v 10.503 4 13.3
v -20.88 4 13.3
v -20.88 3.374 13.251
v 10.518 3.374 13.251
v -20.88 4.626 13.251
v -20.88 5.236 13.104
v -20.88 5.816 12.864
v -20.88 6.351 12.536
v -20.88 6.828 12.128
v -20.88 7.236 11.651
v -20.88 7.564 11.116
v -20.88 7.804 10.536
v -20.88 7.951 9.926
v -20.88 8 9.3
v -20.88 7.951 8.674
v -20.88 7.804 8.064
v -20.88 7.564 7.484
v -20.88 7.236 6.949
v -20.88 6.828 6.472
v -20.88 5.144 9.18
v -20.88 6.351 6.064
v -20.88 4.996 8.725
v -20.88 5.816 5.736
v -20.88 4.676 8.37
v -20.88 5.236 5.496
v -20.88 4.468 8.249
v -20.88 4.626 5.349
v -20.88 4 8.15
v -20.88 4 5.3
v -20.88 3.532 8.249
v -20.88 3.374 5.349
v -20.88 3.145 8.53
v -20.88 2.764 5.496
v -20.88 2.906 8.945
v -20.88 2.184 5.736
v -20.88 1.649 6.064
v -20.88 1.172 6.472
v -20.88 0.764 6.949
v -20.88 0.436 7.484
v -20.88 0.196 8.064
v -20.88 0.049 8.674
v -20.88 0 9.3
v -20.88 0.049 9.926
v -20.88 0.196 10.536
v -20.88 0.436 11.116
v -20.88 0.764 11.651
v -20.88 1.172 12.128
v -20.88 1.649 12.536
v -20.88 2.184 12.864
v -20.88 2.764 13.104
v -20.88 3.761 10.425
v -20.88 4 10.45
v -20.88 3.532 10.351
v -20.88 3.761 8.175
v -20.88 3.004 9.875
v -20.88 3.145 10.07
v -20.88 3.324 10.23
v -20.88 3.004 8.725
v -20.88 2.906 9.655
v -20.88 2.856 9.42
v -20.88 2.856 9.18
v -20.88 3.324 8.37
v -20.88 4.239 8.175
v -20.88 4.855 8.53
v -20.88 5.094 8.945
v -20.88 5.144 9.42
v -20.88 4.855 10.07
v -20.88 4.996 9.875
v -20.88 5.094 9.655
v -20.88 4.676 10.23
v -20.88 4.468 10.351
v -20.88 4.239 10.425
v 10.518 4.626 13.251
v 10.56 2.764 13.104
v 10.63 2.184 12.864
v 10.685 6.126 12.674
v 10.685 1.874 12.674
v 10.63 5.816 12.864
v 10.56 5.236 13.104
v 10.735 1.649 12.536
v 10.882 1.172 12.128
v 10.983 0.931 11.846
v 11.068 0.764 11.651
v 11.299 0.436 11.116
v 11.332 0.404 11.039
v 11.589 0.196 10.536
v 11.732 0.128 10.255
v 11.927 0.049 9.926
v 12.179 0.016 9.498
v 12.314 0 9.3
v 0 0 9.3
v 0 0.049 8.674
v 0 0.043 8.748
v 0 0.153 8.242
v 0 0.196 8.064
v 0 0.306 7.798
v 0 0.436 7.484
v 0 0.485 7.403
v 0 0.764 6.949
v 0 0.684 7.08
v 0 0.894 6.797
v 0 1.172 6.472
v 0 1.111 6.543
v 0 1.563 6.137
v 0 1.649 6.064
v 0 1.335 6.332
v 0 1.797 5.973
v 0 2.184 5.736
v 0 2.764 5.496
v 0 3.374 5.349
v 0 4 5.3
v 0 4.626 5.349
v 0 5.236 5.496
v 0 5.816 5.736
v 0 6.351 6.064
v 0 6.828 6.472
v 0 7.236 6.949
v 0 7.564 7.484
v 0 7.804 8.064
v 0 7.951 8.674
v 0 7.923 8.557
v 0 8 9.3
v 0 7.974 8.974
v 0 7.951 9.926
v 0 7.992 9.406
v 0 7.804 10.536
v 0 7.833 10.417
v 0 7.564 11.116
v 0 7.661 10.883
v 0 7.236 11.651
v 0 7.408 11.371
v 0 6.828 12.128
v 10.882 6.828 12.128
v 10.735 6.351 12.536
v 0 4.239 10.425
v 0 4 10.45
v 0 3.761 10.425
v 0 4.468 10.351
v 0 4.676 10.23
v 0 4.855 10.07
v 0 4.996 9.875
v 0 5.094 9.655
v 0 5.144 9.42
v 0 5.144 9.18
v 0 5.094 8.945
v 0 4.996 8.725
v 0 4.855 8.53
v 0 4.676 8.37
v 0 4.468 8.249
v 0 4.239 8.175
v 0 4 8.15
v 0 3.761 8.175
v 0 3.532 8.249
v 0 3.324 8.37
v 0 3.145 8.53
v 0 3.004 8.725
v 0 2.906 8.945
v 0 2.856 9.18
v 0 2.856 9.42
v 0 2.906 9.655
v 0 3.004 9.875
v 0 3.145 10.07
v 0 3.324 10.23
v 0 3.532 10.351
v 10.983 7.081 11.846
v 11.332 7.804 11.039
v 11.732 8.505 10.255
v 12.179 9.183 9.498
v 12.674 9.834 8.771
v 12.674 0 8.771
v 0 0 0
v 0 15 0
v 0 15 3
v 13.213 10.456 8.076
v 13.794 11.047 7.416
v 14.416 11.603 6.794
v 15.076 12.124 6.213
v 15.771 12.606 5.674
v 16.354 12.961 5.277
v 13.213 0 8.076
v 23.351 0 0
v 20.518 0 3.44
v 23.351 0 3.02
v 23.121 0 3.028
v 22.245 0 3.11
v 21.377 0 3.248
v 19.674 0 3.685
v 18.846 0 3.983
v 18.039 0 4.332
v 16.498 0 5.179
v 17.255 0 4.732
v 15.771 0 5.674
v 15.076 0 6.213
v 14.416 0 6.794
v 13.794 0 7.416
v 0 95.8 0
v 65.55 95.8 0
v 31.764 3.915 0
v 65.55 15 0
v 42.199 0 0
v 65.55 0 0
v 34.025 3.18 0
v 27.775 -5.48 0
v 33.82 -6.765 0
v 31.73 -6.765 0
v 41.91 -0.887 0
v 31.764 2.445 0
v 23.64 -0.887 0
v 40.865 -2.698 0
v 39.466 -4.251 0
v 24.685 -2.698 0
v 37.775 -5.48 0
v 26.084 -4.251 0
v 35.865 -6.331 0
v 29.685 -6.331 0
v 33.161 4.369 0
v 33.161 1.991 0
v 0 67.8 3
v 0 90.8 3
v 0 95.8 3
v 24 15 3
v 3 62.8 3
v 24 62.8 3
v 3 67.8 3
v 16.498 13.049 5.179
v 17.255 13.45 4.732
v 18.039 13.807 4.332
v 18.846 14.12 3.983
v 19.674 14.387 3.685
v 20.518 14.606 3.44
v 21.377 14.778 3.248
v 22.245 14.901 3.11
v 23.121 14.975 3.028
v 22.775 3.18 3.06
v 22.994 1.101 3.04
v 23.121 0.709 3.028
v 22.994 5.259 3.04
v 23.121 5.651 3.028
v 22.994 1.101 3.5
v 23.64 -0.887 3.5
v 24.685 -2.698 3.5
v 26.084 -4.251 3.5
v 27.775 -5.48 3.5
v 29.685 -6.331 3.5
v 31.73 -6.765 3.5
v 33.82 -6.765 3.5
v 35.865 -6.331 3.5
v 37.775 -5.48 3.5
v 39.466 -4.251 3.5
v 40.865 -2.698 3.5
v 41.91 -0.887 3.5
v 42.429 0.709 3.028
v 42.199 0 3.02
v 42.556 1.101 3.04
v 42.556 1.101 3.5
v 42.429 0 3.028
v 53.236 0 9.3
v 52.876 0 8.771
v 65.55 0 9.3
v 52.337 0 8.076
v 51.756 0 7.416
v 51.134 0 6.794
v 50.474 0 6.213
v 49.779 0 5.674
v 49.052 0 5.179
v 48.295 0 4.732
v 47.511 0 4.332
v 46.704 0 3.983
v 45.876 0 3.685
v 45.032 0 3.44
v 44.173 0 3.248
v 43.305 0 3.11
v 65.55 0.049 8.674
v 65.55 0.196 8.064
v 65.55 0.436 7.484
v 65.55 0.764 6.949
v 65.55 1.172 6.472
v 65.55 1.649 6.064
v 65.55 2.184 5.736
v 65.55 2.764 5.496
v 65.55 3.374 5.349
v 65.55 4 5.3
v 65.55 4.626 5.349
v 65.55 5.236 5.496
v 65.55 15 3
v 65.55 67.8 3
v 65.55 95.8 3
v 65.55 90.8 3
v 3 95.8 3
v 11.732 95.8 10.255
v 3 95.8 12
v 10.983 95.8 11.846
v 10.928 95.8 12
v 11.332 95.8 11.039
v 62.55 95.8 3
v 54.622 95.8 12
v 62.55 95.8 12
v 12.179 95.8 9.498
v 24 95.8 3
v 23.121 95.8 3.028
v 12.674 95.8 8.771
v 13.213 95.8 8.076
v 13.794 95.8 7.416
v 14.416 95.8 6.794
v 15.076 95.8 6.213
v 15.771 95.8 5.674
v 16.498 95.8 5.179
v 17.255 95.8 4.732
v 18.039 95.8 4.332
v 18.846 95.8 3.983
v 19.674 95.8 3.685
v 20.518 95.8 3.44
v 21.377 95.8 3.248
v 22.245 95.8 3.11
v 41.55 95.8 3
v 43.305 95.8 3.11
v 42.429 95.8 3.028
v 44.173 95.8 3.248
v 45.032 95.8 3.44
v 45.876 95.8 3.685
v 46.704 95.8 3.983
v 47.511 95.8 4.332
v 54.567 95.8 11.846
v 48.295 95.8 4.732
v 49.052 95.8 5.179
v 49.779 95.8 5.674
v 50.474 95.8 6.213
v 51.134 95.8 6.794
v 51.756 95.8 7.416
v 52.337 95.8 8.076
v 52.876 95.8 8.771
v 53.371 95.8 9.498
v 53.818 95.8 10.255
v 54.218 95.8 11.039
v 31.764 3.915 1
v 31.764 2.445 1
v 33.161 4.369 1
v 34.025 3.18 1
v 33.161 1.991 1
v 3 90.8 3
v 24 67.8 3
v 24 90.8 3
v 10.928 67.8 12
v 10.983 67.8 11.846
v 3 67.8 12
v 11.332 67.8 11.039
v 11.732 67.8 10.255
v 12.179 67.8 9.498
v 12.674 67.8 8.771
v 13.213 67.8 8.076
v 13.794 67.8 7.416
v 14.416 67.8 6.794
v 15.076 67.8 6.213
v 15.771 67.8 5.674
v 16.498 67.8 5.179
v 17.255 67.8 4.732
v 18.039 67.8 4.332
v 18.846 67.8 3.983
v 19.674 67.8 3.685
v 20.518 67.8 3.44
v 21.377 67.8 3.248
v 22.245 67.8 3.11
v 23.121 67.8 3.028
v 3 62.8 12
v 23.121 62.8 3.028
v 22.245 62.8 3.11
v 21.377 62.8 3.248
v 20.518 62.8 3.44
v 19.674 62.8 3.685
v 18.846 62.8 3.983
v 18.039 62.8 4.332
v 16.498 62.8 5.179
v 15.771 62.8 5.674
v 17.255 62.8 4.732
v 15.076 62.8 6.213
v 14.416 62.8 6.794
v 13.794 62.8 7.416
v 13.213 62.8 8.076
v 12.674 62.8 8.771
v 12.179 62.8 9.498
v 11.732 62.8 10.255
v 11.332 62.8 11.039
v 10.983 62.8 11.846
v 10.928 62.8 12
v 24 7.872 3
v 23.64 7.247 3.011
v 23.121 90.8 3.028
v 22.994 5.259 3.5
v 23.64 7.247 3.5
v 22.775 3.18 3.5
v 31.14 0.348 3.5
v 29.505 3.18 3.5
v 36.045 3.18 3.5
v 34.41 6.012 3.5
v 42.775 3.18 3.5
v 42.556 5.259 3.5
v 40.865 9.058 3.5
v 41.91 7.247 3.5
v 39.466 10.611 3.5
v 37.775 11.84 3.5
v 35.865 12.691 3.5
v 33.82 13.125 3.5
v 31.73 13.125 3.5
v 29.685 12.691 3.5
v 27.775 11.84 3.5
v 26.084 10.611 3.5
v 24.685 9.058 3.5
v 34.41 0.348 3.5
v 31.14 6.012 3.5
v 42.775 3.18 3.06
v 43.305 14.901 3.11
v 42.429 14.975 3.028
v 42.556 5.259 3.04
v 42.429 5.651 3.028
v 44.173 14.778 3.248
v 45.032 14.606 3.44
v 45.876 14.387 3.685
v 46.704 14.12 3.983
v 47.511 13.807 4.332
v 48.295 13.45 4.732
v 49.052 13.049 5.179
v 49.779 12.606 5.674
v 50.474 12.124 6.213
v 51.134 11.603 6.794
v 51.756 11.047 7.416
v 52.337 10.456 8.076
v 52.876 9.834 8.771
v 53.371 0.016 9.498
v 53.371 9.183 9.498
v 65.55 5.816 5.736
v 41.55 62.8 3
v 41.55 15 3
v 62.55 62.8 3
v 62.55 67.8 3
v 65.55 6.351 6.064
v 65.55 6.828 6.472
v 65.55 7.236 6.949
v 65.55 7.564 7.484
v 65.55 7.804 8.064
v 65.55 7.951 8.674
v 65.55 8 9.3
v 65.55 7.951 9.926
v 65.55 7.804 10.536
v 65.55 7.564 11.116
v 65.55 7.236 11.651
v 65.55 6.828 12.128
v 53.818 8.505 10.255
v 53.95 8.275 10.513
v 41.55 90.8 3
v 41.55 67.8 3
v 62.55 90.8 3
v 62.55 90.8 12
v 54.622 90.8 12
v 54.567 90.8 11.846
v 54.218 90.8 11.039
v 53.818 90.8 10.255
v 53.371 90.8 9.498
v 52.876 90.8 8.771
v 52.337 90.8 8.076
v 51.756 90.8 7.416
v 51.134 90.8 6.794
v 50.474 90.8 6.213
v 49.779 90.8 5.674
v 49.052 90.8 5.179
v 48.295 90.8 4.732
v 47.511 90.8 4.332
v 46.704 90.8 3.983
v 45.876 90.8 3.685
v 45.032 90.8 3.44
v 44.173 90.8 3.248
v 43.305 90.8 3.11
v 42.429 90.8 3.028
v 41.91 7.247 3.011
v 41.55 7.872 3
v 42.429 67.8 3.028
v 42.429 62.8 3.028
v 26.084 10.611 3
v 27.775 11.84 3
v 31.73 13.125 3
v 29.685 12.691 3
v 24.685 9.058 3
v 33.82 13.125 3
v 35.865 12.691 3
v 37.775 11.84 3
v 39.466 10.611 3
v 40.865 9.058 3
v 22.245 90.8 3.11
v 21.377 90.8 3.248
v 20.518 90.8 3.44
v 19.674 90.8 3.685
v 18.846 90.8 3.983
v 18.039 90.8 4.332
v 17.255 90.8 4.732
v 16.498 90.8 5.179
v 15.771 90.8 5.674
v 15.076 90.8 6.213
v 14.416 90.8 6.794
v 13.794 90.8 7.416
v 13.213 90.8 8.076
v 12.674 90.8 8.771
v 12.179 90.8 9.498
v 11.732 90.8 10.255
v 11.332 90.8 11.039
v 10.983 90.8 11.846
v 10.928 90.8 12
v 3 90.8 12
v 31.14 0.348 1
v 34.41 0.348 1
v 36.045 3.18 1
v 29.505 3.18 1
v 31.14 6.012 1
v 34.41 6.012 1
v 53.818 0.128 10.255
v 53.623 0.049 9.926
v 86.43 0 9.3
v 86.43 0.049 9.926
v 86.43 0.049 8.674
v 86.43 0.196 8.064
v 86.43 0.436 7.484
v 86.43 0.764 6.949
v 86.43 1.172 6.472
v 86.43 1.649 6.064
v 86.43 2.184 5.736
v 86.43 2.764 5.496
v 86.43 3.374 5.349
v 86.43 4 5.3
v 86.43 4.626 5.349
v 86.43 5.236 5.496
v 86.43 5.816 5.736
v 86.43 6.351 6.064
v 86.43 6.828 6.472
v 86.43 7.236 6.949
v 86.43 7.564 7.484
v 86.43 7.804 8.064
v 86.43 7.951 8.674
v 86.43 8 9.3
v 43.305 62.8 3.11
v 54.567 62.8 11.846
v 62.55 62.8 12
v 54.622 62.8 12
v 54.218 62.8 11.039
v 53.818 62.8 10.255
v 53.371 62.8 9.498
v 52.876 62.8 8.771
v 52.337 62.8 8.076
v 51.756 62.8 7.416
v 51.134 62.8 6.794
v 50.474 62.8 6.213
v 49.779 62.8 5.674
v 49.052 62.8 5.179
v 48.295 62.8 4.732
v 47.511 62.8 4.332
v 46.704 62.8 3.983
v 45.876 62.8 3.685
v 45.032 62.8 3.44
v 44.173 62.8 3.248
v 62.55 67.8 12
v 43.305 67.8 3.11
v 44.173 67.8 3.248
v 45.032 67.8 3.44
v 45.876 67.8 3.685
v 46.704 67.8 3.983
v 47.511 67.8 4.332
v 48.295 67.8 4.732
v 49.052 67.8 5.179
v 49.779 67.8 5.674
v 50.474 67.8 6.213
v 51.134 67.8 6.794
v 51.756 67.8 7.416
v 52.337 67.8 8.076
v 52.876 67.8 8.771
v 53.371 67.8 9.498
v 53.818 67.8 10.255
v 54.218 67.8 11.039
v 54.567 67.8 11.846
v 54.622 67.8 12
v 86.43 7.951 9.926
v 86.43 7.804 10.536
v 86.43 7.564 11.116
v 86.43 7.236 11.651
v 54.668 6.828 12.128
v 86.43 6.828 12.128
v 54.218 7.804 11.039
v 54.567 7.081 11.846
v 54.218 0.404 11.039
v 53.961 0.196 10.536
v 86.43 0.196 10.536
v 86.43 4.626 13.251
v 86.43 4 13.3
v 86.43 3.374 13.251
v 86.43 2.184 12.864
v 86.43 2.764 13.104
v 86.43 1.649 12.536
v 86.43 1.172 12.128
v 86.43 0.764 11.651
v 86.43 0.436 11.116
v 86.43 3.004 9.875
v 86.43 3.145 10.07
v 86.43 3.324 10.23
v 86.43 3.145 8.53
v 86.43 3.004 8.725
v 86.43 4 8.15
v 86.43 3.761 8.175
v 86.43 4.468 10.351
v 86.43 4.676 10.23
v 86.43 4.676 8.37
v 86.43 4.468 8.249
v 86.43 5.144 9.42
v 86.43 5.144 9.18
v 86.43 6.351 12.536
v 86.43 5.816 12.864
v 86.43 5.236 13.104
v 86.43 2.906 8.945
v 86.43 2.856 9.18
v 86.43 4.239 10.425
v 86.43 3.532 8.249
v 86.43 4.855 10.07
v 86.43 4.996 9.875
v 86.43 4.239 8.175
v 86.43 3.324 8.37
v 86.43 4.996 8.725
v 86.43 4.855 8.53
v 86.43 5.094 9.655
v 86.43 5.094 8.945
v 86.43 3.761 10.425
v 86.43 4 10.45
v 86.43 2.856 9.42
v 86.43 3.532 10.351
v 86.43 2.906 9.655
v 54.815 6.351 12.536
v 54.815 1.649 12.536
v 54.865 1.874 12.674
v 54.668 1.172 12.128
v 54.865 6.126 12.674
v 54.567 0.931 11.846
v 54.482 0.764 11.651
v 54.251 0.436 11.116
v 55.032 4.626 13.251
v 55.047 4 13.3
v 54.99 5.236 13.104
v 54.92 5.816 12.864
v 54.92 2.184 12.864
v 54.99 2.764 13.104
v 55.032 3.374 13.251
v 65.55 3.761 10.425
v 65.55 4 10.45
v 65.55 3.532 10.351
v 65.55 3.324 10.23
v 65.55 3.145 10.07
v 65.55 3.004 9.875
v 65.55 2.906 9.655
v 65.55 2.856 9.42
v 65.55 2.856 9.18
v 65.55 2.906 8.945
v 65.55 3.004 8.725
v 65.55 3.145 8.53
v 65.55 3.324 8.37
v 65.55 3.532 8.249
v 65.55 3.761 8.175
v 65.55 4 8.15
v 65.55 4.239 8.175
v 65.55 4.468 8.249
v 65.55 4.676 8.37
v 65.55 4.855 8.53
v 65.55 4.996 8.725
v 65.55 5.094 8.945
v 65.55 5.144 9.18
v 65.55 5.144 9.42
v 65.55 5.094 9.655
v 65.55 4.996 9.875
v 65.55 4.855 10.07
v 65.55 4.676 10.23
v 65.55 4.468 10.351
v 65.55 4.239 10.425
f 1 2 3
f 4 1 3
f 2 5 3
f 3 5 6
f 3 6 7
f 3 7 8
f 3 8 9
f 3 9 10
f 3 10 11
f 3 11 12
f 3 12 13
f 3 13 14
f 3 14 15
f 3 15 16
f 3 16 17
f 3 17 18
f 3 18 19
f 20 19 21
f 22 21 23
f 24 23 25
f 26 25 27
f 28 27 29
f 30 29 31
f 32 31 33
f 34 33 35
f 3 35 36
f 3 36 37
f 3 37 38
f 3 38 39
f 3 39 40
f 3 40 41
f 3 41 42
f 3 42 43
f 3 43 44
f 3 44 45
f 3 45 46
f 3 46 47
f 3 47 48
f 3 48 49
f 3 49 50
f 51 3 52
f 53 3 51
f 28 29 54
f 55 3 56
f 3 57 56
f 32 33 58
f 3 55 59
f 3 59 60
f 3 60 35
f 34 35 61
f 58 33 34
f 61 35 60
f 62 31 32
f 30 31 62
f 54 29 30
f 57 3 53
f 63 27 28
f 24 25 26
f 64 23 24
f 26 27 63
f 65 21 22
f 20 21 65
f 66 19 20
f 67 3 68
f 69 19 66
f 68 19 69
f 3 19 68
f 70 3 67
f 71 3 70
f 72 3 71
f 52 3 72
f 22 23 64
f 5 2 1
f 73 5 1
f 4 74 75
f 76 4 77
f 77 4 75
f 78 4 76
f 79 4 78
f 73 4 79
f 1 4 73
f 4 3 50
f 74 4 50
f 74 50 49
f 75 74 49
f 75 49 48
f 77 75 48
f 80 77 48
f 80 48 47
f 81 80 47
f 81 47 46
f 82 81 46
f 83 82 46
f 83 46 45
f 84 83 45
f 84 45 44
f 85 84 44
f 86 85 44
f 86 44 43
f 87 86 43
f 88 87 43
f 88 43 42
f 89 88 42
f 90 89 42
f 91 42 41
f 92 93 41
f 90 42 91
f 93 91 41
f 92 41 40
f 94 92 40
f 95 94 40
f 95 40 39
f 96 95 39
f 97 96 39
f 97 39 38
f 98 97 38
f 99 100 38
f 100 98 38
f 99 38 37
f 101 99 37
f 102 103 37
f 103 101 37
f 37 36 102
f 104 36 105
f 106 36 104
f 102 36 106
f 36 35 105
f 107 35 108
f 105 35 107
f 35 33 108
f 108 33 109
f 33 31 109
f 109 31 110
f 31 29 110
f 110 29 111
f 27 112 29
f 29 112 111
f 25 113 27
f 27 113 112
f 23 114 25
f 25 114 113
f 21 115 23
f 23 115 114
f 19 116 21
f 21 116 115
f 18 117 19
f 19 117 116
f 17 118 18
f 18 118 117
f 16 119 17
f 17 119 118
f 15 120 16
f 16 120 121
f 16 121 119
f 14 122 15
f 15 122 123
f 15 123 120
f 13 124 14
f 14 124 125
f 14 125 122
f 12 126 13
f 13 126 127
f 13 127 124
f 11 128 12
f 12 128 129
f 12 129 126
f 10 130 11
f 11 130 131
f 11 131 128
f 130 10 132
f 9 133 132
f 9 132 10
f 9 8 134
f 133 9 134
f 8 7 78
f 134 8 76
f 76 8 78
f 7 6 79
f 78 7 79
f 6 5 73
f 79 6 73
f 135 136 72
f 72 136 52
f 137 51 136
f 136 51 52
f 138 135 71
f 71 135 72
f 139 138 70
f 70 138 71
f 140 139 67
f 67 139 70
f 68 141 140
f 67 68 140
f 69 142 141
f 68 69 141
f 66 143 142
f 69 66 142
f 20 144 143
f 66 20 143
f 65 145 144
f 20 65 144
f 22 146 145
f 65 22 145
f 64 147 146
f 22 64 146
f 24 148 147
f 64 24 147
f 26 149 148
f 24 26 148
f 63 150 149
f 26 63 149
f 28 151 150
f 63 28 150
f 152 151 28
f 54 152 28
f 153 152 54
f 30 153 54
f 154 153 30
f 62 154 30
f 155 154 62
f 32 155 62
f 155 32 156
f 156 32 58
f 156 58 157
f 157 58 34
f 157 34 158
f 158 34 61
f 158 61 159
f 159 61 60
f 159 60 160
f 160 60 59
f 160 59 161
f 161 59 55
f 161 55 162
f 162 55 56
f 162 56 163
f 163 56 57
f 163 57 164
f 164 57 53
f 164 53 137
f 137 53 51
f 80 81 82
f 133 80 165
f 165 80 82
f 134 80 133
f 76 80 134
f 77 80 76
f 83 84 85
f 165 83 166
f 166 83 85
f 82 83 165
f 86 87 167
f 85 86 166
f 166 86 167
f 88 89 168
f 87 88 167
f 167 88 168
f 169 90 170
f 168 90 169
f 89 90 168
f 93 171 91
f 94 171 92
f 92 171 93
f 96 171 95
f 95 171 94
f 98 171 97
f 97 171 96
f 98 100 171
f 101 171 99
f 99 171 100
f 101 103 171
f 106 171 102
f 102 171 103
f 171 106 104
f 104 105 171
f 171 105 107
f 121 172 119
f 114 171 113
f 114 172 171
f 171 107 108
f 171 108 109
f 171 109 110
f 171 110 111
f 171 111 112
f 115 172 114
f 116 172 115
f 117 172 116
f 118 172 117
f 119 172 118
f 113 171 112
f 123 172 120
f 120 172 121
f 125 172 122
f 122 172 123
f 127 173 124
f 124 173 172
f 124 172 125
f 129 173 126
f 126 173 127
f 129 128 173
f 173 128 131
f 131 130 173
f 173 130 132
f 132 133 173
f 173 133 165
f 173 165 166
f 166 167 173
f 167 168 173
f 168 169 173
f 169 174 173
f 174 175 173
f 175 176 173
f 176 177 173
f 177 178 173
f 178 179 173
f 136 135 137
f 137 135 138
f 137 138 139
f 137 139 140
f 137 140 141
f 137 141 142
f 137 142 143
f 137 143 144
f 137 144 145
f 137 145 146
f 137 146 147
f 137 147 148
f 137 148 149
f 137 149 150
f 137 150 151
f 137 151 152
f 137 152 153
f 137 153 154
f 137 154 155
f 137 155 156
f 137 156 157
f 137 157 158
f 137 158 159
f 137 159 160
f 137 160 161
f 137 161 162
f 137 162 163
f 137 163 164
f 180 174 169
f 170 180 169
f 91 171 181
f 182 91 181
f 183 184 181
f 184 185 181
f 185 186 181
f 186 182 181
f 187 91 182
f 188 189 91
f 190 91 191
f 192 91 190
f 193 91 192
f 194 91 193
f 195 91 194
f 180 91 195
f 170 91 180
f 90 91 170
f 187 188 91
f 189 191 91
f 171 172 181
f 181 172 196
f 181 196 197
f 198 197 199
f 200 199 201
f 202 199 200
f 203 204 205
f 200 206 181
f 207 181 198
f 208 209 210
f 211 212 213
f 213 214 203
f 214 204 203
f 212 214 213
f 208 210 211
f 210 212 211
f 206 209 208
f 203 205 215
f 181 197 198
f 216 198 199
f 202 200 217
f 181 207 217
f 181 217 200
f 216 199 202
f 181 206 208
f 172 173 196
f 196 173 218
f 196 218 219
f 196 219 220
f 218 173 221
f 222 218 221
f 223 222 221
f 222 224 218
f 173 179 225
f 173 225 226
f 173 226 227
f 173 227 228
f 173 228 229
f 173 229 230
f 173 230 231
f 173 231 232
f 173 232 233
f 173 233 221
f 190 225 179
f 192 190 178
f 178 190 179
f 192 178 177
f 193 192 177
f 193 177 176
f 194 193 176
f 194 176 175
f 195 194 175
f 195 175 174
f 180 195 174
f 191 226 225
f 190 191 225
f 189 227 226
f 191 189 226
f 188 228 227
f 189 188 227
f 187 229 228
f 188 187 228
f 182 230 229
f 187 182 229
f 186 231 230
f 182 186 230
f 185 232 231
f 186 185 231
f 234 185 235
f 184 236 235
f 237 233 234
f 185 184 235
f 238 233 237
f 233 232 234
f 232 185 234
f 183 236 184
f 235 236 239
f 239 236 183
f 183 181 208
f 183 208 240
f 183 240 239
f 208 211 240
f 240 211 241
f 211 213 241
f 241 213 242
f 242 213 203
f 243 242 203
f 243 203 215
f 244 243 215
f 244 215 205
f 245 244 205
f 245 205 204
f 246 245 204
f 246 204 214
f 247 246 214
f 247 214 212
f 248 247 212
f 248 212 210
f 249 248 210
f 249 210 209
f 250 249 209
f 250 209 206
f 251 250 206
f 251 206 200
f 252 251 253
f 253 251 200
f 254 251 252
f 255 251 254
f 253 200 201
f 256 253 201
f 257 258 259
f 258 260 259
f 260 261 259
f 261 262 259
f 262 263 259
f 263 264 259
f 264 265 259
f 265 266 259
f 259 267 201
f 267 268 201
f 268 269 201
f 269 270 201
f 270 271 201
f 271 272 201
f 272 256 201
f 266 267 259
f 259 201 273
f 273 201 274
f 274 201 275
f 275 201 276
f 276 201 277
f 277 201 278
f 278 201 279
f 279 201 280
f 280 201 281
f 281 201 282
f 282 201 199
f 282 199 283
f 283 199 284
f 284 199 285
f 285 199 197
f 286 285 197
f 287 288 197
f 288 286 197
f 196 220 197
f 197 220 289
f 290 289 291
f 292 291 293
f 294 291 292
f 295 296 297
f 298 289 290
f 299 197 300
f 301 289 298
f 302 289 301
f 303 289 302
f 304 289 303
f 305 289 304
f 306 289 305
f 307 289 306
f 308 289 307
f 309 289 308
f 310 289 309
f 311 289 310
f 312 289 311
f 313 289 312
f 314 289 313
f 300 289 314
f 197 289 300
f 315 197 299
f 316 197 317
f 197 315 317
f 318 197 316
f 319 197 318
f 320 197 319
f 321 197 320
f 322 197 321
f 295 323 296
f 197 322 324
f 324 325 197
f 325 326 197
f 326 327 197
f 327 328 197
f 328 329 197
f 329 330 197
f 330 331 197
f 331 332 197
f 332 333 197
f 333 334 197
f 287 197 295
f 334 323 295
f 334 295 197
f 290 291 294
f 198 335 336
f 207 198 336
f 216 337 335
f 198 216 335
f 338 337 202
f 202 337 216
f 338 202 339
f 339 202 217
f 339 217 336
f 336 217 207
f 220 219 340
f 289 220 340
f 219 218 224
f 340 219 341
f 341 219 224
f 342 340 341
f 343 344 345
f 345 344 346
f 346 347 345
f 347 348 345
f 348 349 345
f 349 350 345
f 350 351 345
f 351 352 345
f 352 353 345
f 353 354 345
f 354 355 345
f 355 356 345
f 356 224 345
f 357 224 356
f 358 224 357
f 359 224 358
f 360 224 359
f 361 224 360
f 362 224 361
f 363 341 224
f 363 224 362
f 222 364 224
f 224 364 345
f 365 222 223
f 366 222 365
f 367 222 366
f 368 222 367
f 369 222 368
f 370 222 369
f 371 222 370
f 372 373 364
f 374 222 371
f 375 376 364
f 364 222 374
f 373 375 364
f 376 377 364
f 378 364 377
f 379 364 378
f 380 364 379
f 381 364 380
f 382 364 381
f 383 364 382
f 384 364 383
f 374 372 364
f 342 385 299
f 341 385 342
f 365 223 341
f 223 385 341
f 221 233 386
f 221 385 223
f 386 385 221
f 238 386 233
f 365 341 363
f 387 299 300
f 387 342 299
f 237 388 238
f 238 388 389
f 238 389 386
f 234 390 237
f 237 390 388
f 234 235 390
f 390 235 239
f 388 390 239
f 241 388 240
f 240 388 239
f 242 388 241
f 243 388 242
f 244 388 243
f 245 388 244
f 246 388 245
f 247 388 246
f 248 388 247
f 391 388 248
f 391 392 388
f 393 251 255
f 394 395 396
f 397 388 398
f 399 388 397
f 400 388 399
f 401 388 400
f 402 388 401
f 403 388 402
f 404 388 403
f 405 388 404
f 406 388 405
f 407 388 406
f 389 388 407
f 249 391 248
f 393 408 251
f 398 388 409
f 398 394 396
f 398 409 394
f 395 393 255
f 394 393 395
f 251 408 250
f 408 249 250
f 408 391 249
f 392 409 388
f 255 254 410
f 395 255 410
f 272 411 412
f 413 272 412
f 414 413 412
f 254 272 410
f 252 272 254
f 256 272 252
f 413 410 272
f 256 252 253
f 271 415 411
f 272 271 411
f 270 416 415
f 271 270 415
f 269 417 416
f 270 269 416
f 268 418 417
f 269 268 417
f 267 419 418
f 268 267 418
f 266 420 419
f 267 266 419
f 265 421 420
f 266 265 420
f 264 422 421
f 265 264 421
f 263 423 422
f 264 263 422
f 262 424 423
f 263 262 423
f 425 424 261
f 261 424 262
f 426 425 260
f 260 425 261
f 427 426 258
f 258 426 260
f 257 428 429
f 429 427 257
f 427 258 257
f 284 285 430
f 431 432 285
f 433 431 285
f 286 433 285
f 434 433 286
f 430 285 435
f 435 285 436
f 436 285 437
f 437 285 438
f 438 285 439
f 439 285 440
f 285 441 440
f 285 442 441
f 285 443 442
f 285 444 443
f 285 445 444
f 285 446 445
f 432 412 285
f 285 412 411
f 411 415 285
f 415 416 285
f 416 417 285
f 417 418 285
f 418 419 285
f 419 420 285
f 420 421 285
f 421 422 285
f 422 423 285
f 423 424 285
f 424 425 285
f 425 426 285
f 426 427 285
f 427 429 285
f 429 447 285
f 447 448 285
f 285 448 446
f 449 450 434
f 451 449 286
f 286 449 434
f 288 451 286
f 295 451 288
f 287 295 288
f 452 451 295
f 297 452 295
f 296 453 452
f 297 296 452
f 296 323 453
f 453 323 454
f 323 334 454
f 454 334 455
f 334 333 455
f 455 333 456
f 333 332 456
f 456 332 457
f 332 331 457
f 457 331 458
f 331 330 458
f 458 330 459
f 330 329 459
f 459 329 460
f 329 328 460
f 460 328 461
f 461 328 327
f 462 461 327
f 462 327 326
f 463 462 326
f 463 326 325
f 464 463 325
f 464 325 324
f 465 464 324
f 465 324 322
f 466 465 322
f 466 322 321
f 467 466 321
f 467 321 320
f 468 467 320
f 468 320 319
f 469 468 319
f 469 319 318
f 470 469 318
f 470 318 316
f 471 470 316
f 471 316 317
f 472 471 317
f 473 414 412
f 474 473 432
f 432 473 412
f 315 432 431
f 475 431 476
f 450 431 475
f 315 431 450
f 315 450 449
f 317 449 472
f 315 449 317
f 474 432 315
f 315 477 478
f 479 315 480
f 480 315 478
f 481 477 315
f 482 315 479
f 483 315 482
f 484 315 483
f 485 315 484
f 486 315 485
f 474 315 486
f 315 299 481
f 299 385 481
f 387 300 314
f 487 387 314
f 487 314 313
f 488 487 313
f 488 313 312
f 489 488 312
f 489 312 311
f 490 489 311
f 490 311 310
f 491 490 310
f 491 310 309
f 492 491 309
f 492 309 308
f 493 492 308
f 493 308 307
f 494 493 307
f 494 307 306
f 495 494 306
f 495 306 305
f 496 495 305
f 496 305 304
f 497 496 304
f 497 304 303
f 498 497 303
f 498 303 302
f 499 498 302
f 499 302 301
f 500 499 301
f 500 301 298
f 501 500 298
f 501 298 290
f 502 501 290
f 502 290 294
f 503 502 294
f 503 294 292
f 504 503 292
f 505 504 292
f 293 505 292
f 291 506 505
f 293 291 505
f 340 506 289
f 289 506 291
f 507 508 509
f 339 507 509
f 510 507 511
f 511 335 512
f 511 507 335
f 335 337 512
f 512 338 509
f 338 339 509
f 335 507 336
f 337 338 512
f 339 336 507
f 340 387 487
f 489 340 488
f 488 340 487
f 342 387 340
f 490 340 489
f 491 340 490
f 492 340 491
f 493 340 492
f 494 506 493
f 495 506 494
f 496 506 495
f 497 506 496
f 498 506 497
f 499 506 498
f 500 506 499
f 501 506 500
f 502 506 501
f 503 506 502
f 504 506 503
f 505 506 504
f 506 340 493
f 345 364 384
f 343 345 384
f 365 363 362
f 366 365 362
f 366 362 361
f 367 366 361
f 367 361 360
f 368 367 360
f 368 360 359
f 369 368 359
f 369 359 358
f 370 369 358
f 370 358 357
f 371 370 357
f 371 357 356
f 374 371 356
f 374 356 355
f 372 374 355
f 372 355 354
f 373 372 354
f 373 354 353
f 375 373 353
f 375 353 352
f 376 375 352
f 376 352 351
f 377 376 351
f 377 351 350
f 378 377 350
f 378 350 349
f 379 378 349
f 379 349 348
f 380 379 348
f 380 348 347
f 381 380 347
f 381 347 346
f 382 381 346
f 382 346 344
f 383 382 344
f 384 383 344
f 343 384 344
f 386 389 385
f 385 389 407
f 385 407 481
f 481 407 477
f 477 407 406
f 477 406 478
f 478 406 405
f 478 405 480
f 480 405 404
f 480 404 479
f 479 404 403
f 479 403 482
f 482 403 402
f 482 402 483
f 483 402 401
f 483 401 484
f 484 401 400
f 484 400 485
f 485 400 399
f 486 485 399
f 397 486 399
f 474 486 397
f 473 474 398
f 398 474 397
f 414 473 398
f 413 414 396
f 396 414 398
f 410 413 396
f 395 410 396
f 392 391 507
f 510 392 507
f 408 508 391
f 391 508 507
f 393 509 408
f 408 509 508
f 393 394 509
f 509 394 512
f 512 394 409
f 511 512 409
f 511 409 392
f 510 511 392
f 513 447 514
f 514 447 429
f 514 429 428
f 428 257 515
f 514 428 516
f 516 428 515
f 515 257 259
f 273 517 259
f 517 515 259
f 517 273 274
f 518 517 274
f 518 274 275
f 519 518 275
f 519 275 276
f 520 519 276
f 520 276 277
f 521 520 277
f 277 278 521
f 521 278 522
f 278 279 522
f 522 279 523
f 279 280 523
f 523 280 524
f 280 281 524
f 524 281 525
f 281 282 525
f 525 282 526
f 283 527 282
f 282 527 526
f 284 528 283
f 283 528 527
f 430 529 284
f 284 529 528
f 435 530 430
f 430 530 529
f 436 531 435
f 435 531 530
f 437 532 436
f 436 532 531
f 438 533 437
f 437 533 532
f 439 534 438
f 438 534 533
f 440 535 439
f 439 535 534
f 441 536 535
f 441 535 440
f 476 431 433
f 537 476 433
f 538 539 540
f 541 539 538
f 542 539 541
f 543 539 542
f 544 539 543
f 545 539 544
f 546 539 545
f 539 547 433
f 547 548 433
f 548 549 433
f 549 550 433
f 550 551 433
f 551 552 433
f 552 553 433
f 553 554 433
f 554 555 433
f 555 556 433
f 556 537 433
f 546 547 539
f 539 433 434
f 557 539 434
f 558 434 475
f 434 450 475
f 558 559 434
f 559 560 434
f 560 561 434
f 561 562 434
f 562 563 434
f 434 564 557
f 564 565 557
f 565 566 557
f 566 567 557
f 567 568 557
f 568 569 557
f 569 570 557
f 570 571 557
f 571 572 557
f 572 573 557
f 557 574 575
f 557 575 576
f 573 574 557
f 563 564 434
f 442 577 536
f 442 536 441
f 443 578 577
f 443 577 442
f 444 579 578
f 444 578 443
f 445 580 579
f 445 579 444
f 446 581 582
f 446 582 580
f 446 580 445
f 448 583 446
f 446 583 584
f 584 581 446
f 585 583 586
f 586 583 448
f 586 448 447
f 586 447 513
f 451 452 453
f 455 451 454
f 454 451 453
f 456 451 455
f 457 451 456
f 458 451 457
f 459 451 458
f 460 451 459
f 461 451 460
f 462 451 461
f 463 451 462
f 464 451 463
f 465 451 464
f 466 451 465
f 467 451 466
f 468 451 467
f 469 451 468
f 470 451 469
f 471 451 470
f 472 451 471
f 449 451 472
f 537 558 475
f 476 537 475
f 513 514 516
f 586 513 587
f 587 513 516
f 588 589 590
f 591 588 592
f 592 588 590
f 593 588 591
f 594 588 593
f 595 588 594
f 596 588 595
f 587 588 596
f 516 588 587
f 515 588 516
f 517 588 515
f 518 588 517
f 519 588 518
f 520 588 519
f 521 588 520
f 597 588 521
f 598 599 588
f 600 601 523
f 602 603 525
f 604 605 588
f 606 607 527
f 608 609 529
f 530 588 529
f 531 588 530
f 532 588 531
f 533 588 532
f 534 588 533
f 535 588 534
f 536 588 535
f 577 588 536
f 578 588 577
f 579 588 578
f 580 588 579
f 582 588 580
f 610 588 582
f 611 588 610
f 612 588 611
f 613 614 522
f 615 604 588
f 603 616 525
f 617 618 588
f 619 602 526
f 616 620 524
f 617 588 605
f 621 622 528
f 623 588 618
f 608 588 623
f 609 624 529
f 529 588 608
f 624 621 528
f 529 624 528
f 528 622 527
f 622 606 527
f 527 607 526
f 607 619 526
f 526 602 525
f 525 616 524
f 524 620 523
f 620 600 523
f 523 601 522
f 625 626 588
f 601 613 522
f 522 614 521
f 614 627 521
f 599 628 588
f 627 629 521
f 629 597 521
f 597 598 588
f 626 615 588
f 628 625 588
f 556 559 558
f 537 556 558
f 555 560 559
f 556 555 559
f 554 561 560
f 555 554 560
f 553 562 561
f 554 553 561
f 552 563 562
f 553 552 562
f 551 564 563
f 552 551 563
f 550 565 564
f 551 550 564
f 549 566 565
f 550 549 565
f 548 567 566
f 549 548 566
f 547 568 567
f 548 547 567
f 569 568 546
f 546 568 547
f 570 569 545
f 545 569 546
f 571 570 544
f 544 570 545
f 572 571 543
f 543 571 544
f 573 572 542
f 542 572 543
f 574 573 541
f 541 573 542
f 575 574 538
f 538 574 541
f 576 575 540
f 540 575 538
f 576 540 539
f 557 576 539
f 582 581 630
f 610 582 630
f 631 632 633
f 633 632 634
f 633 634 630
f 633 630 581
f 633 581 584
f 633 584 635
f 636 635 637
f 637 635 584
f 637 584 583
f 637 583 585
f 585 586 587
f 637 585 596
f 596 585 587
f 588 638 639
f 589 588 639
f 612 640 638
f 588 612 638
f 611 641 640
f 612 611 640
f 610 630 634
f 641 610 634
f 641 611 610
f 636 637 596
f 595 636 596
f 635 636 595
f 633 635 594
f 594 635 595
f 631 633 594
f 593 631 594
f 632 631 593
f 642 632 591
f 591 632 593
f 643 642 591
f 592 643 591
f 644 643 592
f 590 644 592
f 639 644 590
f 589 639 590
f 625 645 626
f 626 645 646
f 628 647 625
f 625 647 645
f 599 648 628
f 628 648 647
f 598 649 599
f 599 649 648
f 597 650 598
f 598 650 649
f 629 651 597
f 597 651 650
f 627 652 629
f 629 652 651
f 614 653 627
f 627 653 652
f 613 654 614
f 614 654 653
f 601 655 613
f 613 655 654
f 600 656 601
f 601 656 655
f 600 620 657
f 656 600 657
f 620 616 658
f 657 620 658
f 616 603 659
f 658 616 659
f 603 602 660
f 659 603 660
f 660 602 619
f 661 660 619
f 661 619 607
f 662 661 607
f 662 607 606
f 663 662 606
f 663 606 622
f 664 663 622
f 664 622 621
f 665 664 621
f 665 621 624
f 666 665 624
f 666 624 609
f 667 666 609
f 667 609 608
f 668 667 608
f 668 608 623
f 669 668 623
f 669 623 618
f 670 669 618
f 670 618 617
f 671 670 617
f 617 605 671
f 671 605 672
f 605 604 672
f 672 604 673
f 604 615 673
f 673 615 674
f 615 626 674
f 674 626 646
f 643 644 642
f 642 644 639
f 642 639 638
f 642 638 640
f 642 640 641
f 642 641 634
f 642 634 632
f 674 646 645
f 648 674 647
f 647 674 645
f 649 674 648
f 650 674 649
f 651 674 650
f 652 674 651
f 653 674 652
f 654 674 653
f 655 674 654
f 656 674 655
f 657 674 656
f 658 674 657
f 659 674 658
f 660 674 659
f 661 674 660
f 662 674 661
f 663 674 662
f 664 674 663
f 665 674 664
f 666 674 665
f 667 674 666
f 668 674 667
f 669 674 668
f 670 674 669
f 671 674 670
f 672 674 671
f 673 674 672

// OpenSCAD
base_length 		= 80.80 + 15 ; 
base_height			=  3.00	;
base_width 			= 65.55 ;
servo_width 		= 23.00 ;
servo_height		= 12.00 ; 
servo_shoulder_d	=  3.00	;
axel_radius 		=  4.00	;
axel_support_length = 15.00 ;
axel_hole_r			=  1.15	;
axel_ext			= 20.88 ; 
mount_r				= 10.00	;
mount_hole_r		=  1.25	;
mount_height		=  3.50	;
nut_trap_r			=  6.54/2	;  
axel_height 		=  9.3	;
servo_holder_width	= servo_width + 10 ;

// *** Begin ****
difference(){
	union(){	
		translate ([base_width/2, 3.18 ,0 ]) mount();
		difference(){
			union(){

				base();
			}
			servo_cout();
			middle_cout();

		}
	}
	translate ([base_width/2, 3.18 ,0 ]) mount_cout();
}


// *** Cutouts ***

module servo_cout(){
	translate([0,base_length + 5 - servo_holder_width,base_height]) 
		cube ([base_width, servo_width, servo_height]);
}

module middle_cout(){
	translate([0,-1, base_height + 14])
		rotate([270,0,0])
			hull(){
				translate ([14 + 10, 0,0])
					cylinder (r=14, h= base_length + 2, $fn = 100);
				translate ([base_width - 14 - 10,0,0]) 
					cylinder (r=14, h= base_length + 2, $fn = 100);
			}	
}

module mount_cout (){
	cylinder (r= mount_hole_r, mount_height + 2);
	translate ([0,0,base_height-2])
		cylinder (r= nut_trap_r,  h = 3, $fn = 6);
}

// *** Base ***
module base (){
	cube ([base_width, base_length, base_height]);
	translate([servo_shoulder_d,base_length - servo_holder_width,0]) 
		cube([base_width - 2 * servo_shoulder_d, servo_holder_width, servo_height]);

	axel(); 
}

module mount (){
	cylinder (r= mount_r, h = mount_height);
}



module axel (){
	hull(){
		translate([0,axel_radius,axel_height])
			rotate ([0,90,0]) 
				cylinder (r=axel_radius, h= base_width, $fn= 40);
		cube ([base_width, axel_support_length, base_height]);
	}
	difference(){
		hull(){
			translate([-axel_ext,axel_radius,axel_height])
				rotate ([0,90,0]) 
					cylinder (r=axel_radius, h= base_width + 2 * axel_ext, $fn = 40);
		}
		translate([-axel_ext - 1 ,axel_radius,axel_height])
			rotate ([0,90,0]) 
				cylinder (r=axel_hole_r, h= base_width + (2 * axel_ext) + 2, $fn = 30);
	}
}
